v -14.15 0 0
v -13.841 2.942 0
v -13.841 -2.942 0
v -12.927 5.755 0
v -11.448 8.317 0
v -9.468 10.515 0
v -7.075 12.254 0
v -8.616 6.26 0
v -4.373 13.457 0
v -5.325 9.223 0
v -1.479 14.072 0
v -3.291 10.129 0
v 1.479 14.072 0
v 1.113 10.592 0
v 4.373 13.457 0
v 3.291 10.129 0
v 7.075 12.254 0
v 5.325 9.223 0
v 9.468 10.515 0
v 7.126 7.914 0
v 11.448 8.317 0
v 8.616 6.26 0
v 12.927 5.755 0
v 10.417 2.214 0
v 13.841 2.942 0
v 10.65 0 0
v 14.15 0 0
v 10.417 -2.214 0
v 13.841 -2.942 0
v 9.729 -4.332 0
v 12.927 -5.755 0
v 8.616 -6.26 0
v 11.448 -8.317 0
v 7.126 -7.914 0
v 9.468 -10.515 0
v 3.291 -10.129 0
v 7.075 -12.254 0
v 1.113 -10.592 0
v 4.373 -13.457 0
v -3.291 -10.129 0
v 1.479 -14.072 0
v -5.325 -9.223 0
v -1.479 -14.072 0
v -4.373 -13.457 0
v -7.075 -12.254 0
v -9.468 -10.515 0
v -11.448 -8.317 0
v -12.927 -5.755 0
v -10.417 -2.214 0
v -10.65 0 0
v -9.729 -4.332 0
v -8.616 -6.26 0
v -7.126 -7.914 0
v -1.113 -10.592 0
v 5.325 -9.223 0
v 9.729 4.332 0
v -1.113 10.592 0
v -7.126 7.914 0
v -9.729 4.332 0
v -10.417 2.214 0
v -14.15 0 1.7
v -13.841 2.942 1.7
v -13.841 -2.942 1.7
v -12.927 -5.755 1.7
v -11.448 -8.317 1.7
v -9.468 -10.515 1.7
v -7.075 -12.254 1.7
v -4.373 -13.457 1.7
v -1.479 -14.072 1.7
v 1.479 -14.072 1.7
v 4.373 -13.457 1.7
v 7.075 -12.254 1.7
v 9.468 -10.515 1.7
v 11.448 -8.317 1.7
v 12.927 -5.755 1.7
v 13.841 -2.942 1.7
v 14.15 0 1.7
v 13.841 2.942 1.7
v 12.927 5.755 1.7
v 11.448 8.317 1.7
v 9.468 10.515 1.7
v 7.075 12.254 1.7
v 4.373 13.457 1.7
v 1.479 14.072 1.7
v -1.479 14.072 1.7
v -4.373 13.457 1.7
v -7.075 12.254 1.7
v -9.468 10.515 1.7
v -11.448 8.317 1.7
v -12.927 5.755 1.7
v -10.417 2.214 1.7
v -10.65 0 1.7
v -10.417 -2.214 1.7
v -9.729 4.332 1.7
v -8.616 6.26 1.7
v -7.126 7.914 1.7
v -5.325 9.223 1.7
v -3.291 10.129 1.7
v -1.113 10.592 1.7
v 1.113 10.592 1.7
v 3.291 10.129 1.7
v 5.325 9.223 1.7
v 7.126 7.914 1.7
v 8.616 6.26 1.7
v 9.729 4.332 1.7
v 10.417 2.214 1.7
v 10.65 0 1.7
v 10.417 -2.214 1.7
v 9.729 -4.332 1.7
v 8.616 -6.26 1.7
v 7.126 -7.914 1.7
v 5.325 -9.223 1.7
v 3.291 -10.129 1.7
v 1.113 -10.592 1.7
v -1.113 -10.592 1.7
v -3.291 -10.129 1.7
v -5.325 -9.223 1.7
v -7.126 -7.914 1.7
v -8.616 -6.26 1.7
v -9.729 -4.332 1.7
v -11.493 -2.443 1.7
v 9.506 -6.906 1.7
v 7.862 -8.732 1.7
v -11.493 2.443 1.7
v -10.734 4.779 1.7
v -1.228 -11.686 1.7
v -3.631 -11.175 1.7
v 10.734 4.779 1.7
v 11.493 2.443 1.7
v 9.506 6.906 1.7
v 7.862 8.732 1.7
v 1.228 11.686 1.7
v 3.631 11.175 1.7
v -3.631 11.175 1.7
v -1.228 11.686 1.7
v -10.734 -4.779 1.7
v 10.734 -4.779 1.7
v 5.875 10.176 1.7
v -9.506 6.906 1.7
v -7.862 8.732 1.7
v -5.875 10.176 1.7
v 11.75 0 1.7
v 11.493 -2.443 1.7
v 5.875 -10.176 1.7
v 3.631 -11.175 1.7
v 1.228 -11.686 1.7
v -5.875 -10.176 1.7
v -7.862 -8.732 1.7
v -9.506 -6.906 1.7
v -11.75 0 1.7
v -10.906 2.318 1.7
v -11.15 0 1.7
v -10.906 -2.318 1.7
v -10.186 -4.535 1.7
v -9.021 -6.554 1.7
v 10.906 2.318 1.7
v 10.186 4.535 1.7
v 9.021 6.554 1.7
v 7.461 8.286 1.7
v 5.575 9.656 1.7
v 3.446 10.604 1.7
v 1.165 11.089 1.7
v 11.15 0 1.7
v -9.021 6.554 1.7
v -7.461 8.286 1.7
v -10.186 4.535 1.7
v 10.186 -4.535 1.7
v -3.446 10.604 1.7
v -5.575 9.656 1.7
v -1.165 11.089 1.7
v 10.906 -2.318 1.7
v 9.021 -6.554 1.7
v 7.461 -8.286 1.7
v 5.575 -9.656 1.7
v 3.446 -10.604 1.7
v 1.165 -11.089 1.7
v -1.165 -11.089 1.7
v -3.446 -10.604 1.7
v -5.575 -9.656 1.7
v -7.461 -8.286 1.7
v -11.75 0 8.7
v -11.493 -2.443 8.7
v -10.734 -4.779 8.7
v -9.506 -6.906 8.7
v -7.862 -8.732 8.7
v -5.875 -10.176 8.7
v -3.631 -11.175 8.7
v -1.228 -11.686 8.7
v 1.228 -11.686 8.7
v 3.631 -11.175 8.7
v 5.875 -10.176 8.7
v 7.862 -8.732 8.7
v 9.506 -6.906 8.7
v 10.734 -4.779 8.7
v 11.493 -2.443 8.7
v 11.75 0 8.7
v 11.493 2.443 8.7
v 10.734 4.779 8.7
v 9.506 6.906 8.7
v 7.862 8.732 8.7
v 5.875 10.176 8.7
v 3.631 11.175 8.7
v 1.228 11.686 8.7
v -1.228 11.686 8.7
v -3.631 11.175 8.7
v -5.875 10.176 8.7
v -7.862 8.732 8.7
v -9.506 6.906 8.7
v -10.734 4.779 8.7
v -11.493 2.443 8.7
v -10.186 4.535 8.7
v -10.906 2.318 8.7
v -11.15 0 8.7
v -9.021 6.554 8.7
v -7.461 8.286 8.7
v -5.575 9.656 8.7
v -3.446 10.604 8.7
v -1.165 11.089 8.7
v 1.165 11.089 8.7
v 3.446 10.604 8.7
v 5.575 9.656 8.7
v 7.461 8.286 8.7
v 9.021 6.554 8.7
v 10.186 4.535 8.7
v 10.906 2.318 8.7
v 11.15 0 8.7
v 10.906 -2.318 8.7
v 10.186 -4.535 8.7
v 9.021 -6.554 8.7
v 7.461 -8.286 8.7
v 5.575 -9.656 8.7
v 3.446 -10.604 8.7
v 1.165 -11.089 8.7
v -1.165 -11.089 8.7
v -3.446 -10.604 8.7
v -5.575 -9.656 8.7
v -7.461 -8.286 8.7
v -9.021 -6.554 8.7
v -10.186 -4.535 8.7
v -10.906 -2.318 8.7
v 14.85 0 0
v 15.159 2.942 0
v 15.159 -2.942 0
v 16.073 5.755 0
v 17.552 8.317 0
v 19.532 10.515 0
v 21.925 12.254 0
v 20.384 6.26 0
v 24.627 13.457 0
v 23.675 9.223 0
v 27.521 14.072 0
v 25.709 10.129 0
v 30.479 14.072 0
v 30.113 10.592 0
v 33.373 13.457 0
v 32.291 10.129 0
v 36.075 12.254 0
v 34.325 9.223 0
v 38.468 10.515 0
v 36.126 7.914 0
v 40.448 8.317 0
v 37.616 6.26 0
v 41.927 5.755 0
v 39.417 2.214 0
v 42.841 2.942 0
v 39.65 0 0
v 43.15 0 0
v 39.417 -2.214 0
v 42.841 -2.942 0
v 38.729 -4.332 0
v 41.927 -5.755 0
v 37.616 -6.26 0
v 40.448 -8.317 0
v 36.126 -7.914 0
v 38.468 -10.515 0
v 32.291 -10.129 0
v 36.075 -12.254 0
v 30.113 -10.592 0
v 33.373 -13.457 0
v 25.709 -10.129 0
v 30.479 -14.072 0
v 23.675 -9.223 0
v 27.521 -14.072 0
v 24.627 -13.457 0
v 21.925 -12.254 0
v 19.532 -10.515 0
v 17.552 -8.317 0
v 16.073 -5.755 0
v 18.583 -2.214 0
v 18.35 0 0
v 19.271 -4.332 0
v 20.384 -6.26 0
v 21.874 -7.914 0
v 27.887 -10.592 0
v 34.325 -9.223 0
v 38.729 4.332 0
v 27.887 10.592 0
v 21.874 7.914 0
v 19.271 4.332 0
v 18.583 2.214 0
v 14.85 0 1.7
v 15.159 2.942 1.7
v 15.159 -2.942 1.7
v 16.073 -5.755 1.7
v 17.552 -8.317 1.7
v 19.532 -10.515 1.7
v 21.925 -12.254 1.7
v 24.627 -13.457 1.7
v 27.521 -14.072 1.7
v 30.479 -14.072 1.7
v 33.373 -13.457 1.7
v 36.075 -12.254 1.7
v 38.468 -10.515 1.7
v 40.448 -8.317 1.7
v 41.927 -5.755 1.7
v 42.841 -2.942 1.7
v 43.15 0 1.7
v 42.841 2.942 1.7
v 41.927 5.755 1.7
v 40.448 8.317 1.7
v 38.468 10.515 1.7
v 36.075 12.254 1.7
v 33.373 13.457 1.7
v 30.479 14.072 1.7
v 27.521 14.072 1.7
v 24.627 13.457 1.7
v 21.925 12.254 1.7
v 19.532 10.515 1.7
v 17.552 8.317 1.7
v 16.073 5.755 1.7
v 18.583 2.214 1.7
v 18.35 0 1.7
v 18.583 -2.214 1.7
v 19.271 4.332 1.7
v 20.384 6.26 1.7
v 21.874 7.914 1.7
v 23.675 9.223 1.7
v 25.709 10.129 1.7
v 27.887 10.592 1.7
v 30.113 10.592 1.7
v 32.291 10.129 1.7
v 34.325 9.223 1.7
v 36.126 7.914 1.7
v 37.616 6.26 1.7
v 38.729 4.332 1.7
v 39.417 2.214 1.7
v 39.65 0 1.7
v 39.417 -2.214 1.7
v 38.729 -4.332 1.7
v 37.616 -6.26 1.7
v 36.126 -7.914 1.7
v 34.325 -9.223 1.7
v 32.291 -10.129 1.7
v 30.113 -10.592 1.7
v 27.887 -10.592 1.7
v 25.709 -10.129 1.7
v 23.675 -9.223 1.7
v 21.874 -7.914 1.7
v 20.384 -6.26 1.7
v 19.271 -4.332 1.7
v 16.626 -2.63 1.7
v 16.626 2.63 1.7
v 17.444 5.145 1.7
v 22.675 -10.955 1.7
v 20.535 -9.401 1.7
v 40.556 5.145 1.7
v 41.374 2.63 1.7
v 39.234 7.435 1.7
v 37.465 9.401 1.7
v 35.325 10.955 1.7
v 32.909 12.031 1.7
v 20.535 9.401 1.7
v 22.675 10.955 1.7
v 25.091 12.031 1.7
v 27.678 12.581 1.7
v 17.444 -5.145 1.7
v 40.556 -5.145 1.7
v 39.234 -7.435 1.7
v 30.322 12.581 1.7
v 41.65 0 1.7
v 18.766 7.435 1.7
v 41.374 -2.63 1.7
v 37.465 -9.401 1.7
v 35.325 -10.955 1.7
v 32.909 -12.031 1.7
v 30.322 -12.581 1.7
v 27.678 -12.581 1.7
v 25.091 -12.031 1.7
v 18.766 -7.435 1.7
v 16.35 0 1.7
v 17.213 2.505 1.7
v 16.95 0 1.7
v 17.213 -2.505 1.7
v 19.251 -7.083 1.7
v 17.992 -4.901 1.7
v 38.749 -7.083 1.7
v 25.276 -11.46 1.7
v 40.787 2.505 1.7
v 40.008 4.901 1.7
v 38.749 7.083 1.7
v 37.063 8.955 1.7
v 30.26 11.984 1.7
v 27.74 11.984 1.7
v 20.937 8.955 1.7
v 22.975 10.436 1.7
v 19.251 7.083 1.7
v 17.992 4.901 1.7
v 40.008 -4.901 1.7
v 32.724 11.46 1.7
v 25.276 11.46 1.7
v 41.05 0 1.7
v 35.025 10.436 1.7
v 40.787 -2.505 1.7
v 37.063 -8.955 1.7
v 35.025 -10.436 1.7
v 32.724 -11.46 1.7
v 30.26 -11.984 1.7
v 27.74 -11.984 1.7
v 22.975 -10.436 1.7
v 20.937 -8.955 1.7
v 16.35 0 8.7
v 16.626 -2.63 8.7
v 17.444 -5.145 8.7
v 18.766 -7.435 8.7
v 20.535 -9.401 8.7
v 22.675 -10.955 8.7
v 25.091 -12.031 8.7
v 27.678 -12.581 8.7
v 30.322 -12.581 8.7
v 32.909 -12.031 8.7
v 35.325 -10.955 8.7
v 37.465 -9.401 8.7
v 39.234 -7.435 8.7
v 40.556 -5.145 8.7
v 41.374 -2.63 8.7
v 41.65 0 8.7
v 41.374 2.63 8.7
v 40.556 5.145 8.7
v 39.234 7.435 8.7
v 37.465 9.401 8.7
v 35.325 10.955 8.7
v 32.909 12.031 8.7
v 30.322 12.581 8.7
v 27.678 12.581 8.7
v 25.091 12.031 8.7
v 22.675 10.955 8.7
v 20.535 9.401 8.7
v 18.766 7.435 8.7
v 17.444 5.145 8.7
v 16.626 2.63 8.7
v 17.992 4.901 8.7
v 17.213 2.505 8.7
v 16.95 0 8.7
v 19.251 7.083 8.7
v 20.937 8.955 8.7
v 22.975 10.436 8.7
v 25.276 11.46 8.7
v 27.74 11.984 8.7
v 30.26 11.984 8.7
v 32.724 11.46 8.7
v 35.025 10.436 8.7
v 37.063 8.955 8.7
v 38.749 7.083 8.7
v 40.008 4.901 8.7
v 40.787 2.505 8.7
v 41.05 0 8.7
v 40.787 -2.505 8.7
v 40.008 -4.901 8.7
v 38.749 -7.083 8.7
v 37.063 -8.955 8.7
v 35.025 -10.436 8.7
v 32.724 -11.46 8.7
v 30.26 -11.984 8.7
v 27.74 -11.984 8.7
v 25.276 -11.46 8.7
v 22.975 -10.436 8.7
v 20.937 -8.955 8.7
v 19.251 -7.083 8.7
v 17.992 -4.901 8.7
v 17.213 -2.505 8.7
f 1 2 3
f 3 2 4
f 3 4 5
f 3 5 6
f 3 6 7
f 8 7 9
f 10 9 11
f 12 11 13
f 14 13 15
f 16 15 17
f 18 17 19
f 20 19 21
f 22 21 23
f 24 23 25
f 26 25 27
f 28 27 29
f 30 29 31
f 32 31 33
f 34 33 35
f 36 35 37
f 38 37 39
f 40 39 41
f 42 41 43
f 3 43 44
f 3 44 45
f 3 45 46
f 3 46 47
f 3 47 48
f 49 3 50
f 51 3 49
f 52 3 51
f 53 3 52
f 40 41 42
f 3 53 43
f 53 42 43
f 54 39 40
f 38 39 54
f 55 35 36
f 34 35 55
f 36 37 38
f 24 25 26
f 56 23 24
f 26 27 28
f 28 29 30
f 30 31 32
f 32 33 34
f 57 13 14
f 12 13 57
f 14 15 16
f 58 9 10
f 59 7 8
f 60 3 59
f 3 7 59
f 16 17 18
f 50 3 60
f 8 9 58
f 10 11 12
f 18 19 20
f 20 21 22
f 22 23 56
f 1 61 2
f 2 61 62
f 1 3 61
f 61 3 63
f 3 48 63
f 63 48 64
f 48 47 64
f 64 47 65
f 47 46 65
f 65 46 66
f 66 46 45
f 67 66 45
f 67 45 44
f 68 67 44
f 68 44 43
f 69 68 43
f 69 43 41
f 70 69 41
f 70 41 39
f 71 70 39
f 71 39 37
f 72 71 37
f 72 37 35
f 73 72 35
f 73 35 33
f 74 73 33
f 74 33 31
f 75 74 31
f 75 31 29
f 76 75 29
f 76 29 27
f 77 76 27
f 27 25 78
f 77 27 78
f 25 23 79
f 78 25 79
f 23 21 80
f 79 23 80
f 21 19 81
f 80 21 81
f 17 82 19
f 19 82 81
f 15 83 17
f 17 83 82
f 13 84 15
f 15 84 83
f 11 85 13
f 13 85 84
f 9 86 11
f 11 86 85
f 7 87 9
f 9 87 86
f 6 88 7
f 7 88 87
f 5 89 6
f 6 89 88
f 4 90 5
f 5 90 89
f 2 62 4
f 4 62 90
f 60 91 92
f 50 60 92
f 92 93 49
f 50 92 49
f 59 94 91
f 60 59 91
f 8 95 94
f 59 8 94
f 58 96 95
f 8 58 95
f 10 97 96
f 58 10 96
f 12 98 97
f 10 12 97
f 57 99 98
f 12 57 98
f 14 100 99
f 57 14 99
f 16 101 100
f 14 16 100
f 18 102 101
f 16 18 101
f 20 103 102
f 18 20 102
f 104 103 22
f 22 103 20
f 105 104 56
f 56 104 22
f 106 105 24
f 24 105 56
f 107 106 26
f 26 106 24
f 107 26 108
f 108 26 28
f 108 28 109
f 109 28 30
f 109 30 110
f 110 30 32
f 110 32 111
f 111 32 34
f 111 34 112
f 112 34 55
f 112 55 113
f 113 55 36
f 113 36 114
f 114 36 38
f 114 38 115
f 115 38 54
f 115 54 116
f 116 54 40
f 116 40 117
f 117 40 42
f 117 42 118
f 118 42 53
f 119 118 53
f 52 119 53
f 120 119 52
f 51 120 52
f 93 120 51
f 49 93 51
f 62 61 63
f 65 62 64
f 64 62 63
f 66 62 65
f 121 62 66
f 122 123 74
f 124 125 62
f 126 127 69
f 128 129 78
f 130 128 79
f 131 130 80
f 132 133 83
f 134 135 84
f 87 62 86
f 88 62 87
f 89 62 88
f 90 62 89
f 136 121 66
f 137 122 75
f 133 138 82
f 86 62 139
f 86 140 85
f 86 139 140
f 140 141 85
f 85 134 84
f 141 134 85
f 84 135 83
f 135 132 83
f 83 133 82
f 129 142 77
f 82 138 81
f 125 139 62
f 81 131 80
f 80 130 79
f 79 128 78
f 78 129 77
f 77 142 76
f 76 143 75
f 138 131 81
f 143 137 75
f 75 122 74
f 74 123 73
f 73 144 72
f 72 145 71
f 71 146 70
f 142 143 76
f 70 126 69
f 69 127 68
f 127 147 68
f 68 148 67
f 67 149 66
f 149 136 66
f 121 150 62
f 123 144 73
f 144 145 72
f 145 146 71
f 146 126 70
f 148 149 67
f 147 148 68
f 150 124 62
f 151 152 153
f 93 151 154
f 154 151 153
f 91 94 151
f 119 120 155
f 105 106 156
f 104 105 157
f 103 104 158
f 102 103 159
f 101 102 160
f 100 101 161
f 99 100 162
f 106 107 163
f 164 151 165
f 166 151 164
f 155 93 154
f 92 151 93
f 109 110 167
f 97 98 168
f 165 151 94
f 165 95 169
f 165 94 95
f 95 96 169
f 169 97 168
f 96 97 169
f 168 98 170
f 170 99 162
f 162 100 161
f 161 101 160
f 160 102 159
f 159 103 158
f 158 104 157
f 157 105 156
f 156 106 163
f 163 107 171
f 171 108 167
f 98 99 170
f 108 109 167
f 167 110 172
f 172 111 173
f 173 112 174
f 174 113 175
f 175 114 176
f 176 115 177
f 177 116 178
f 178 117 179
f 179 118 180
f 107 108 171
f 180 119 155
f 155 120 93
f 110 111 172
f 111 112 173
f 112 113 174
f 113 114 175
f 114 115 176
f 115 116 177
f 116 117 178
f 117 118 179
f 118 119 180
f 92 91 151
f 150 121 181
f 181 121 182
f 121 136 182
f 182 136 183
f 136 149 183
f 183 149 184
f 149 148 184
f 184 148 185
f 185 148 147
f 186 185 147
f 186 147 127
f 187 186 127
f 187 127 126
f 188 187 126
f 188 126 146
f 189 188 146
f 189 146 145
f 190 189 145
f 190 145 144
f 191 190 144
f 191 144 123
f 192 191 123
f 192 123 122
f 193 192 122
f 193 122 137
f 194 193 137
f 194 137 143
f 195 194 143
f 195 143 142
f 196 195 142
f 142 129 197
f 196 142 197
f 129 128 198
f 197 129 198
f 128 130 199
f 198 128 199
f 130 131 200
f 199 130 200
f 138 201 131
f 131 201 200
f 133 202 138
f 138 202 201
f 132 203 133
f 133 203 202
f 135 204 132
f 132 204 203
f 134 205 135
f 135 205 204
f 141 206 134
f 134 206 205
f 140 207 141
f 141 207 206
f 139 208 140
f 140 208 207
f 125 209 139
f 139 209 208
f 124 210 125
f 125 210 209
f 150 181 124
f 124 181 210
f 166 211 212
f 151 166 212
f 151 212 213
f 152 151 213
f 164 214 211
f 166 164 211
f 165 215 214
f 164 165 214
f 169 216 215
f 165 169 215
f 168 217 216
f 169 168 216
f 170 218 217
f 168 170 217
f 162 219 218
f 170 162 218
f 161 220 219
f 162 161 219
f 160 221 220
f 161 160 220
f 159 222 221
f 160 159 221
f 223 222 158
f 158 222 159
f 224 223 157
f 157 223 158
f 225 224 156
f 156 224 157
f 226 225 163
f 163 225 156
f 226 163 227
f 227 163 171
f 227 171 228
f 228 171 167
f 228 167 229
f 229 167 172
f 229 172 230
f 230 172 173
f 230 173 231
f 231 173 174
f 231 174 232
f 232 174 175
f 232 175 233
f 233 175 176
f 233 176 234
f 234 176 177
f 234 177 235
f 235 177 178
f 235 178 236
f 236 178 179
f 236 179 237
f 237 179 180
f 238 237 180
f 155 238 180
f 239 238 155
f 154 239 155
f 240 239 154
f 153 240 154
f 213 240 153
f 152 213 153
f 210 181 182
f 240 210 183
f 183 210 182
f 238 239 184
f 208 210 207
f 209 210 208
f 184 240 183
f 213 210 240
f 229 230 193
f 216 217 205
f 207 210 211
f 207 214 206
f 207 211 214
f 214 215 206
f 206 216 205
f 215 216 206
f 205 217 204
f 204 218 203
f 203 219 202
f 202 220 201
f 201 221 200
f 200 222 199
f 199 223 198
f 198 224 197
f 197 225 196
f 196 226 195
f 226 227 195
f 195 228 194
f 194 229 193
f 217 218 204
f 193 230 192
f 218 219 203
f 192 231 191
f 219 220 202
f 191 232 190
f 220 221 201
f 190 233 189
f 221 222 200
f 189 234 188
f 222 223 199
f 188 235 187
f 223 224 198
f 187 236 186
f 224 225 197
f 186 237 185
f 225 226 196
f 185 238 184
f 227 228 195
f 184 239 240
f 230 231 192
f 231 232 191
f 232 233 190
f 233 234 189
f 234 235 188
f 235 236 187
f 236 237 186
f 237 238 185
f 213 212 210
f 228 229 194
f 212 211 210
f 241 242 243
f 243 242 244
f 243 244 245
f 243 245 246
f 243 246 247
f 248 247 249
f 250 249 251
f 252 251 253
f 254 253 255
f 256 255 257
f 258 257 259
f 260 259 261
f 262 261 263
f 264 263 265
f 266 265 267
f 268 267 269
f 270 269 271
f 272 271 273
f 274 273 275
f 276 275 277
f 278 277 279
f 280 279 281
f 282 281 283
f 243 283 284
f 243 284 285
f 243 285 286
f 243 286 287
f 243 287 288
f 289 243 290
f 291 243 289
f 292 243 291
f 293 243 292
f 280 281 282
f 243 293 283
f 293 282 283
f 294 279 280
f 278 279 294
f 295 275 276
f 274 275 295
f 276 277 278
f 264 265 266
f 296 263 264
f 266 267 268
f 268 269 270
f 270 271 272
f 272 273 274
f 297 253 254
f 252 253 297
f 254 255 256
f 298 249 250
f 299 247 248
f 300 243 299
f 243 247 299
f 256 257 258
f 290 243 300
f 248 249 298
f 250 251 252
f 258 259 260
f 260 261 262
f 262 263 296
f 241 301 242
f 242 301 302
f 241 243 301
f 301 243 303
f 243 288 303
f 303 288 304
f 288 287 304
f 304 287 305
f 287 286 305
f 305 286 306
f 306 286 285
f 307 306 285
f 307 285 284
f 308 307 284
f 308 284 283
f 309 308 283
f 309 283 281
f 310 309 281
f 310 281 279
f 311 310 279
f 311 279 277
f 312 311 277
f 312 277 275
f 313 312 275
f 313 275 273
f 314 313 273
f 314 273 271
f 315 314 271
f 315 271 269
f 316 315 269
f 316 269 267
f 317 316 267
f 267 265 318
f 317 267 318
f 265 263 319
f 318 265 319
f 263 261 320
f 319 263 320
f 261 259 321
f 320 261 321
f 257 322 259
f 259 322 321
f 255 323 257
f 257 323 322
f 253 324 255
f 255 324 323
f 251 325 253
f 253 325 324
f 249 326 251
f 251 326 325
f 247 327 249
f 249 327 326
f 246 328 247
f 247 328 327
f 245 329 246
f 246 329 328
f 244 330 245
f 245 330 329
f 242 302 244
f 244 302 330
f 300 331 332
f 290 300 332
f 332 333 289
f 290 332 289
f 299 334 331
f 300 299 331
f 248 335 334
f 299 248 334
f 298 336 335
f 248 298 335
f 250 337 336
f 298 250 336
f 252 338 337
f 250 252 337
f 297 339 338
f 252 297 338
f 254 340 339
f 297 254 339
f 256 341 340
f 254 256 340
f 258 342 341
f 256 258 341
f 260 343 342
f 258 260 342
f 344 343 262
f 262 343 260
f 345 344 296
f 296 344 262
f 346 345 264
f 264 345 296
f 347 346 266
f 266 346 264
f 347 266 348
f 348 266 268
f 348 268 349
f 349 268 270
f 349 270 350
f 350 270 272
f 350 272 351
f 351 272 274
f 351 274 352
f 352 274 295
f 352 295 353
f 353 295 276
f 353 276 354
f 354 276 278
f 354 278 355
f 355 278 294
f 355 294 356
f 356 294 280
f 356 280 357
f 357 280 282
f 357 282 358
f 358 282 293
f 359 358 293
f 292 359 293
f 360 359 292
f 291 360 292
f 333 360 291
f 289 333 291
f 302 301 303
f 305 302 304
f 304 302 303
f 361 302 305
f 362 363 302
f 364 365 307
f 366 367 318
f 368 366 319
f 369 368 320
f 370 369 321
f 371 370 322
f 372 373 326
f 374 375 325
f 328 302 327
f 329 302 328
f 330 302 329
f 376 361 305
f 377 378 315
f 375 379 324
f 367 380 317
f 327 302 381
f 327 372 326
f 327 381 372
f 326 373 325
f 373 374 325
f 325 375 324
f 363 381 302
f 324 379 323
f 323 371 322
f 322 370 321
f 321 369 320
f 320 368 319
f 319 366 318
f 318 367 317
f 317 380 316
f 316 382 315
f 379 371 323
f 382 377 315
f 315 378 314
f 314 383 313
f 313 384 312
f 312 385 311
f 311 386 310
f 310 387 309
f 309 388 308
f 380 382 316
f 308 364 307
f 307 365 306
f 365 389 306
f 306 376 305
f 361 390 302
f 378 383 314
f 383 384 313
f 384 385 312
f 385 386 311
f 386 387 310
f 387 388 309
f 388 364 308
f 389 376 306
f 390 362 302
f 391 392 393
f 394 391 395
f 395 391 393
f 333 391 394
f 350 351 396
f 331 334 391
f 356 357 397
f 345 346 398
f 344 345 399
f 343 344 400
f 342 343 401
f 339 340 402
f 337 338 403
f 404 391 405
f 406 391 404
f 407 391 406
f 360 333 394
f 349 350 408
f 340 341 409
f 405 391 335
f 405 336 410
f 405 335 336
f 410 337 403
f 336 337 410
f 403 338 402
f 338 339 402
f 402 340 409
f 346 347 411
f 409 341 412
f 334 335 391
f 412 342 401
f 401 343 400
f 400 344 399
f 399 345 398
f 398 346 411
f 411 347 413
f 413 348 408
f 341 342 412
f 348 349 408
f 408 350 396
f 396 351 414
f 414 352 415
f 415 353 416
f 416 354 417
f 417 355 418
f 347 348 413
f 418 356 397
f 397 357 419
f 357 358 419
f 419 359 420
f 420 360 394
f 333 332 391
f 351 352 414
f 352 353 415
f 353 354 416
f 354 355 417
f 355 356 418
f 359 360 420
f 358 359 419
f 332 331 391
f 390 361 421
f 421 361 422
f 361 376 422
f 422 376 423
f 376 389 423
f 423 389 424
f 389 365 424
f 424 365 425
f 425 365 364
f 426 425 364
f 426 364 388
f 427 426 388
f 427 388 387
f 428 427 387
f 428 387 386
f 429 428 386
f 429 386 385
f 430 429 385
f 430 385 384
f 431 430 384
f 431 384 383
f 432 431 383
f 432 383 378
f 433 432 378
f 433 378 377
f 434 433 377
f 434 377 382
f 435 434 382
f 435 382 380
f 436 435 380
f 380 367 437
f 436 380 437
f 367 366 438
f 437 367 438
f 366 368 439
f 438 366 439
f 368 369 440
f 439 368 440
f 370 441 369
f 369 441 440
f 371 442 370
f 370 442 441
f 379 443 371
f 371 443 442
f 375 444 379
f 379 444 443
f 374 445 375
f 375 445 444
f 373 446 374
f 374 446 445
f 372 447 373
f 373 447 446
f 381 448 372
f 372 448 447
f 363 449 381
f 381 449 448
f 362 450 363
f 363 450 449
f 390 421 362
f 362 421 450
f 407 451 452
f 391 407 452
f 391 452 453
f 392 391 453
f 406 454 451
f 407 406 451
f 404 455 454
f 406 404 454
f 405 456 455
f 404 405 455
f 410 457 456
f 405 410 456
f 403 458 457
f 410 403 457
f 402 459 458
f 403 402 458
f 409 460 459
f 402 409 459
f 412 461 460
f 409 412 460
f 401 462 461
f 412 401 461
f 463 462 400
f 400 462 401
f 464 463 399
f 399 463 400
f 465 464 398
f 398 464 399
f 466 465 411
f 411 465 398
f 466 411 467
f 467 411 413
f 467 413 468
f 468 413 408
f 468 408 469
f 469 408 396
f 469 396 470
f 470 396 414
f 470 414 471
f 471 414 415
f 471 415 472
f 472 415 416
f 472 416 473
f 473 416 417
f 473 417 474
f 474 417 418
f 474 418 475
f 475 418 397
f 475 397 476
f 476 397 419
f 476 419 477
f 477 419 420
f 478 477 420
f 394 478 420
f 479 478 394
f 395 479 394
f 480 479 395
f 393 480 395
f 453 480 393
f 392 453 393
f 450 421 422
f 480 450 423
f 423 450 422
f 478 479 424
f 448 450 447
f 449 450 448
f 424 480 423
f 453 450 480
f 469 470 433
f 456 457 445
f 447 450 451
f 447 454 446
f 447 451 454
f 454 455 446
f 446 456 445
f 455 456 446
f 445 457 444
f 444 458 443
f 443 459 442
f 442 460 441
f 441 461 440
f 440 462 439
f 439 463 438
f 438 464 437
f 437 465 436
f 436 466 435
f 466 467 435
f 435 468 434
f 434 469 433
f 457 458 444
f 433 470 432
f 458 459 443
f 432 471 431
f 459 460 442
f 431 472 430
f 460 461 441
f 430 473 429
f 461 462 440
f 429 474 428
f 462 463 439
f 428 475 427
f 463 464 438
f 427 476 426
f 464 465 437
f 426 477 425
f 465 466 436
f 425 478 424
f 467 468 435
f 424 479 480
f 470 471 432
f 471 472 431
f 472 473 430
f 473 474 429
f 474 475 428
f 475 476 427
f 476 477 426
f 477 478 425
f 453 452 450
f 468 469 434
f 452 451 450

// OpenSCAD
//PRUSAMendel
//GNUGPLv2
//GregFrost

/**
*@categoryPrinted
*/

single_layer_width=0.6;
bearing_inner=22.3;
thickness=1.7;
height=7+thickness;
wall_ascent=3;
wall_descent=0.5;

module inner()
{
	difference()
	{
		cylinder(r=bearing_inner/2+single_layer_width,h=height);
		translate([0,0,-1])
		cylinder(r=bearing_inner/2,h=height+2);
	}

	difference()
	{
		cylinder(r=bearing_inner/2+wall_ascent,h=thickness);
		translate([0,0,-1])
		cylinder(r=bearing_inner/2-wall_descent,h=thickness+2);
	}
}

module outer()
{
	difference()
	{
		cylinder(r=bearing_inner/2+2*single_layer_width+0.3,h=height);
		translate([0,0,-1])
		cylinder(r=bearing_inner/2+single_layer_width+0.3,h=height+2);
	}

	difference()
	{
		cylinder(r=bearing_inner/2+wall_ascent,h=thickness);
		translate([0,0,-1])
		cylinder(r=bearing_inner/2-wall_descent,h=thickness+2);
	}
}

inner();

translate([29,0,0])
outer();
